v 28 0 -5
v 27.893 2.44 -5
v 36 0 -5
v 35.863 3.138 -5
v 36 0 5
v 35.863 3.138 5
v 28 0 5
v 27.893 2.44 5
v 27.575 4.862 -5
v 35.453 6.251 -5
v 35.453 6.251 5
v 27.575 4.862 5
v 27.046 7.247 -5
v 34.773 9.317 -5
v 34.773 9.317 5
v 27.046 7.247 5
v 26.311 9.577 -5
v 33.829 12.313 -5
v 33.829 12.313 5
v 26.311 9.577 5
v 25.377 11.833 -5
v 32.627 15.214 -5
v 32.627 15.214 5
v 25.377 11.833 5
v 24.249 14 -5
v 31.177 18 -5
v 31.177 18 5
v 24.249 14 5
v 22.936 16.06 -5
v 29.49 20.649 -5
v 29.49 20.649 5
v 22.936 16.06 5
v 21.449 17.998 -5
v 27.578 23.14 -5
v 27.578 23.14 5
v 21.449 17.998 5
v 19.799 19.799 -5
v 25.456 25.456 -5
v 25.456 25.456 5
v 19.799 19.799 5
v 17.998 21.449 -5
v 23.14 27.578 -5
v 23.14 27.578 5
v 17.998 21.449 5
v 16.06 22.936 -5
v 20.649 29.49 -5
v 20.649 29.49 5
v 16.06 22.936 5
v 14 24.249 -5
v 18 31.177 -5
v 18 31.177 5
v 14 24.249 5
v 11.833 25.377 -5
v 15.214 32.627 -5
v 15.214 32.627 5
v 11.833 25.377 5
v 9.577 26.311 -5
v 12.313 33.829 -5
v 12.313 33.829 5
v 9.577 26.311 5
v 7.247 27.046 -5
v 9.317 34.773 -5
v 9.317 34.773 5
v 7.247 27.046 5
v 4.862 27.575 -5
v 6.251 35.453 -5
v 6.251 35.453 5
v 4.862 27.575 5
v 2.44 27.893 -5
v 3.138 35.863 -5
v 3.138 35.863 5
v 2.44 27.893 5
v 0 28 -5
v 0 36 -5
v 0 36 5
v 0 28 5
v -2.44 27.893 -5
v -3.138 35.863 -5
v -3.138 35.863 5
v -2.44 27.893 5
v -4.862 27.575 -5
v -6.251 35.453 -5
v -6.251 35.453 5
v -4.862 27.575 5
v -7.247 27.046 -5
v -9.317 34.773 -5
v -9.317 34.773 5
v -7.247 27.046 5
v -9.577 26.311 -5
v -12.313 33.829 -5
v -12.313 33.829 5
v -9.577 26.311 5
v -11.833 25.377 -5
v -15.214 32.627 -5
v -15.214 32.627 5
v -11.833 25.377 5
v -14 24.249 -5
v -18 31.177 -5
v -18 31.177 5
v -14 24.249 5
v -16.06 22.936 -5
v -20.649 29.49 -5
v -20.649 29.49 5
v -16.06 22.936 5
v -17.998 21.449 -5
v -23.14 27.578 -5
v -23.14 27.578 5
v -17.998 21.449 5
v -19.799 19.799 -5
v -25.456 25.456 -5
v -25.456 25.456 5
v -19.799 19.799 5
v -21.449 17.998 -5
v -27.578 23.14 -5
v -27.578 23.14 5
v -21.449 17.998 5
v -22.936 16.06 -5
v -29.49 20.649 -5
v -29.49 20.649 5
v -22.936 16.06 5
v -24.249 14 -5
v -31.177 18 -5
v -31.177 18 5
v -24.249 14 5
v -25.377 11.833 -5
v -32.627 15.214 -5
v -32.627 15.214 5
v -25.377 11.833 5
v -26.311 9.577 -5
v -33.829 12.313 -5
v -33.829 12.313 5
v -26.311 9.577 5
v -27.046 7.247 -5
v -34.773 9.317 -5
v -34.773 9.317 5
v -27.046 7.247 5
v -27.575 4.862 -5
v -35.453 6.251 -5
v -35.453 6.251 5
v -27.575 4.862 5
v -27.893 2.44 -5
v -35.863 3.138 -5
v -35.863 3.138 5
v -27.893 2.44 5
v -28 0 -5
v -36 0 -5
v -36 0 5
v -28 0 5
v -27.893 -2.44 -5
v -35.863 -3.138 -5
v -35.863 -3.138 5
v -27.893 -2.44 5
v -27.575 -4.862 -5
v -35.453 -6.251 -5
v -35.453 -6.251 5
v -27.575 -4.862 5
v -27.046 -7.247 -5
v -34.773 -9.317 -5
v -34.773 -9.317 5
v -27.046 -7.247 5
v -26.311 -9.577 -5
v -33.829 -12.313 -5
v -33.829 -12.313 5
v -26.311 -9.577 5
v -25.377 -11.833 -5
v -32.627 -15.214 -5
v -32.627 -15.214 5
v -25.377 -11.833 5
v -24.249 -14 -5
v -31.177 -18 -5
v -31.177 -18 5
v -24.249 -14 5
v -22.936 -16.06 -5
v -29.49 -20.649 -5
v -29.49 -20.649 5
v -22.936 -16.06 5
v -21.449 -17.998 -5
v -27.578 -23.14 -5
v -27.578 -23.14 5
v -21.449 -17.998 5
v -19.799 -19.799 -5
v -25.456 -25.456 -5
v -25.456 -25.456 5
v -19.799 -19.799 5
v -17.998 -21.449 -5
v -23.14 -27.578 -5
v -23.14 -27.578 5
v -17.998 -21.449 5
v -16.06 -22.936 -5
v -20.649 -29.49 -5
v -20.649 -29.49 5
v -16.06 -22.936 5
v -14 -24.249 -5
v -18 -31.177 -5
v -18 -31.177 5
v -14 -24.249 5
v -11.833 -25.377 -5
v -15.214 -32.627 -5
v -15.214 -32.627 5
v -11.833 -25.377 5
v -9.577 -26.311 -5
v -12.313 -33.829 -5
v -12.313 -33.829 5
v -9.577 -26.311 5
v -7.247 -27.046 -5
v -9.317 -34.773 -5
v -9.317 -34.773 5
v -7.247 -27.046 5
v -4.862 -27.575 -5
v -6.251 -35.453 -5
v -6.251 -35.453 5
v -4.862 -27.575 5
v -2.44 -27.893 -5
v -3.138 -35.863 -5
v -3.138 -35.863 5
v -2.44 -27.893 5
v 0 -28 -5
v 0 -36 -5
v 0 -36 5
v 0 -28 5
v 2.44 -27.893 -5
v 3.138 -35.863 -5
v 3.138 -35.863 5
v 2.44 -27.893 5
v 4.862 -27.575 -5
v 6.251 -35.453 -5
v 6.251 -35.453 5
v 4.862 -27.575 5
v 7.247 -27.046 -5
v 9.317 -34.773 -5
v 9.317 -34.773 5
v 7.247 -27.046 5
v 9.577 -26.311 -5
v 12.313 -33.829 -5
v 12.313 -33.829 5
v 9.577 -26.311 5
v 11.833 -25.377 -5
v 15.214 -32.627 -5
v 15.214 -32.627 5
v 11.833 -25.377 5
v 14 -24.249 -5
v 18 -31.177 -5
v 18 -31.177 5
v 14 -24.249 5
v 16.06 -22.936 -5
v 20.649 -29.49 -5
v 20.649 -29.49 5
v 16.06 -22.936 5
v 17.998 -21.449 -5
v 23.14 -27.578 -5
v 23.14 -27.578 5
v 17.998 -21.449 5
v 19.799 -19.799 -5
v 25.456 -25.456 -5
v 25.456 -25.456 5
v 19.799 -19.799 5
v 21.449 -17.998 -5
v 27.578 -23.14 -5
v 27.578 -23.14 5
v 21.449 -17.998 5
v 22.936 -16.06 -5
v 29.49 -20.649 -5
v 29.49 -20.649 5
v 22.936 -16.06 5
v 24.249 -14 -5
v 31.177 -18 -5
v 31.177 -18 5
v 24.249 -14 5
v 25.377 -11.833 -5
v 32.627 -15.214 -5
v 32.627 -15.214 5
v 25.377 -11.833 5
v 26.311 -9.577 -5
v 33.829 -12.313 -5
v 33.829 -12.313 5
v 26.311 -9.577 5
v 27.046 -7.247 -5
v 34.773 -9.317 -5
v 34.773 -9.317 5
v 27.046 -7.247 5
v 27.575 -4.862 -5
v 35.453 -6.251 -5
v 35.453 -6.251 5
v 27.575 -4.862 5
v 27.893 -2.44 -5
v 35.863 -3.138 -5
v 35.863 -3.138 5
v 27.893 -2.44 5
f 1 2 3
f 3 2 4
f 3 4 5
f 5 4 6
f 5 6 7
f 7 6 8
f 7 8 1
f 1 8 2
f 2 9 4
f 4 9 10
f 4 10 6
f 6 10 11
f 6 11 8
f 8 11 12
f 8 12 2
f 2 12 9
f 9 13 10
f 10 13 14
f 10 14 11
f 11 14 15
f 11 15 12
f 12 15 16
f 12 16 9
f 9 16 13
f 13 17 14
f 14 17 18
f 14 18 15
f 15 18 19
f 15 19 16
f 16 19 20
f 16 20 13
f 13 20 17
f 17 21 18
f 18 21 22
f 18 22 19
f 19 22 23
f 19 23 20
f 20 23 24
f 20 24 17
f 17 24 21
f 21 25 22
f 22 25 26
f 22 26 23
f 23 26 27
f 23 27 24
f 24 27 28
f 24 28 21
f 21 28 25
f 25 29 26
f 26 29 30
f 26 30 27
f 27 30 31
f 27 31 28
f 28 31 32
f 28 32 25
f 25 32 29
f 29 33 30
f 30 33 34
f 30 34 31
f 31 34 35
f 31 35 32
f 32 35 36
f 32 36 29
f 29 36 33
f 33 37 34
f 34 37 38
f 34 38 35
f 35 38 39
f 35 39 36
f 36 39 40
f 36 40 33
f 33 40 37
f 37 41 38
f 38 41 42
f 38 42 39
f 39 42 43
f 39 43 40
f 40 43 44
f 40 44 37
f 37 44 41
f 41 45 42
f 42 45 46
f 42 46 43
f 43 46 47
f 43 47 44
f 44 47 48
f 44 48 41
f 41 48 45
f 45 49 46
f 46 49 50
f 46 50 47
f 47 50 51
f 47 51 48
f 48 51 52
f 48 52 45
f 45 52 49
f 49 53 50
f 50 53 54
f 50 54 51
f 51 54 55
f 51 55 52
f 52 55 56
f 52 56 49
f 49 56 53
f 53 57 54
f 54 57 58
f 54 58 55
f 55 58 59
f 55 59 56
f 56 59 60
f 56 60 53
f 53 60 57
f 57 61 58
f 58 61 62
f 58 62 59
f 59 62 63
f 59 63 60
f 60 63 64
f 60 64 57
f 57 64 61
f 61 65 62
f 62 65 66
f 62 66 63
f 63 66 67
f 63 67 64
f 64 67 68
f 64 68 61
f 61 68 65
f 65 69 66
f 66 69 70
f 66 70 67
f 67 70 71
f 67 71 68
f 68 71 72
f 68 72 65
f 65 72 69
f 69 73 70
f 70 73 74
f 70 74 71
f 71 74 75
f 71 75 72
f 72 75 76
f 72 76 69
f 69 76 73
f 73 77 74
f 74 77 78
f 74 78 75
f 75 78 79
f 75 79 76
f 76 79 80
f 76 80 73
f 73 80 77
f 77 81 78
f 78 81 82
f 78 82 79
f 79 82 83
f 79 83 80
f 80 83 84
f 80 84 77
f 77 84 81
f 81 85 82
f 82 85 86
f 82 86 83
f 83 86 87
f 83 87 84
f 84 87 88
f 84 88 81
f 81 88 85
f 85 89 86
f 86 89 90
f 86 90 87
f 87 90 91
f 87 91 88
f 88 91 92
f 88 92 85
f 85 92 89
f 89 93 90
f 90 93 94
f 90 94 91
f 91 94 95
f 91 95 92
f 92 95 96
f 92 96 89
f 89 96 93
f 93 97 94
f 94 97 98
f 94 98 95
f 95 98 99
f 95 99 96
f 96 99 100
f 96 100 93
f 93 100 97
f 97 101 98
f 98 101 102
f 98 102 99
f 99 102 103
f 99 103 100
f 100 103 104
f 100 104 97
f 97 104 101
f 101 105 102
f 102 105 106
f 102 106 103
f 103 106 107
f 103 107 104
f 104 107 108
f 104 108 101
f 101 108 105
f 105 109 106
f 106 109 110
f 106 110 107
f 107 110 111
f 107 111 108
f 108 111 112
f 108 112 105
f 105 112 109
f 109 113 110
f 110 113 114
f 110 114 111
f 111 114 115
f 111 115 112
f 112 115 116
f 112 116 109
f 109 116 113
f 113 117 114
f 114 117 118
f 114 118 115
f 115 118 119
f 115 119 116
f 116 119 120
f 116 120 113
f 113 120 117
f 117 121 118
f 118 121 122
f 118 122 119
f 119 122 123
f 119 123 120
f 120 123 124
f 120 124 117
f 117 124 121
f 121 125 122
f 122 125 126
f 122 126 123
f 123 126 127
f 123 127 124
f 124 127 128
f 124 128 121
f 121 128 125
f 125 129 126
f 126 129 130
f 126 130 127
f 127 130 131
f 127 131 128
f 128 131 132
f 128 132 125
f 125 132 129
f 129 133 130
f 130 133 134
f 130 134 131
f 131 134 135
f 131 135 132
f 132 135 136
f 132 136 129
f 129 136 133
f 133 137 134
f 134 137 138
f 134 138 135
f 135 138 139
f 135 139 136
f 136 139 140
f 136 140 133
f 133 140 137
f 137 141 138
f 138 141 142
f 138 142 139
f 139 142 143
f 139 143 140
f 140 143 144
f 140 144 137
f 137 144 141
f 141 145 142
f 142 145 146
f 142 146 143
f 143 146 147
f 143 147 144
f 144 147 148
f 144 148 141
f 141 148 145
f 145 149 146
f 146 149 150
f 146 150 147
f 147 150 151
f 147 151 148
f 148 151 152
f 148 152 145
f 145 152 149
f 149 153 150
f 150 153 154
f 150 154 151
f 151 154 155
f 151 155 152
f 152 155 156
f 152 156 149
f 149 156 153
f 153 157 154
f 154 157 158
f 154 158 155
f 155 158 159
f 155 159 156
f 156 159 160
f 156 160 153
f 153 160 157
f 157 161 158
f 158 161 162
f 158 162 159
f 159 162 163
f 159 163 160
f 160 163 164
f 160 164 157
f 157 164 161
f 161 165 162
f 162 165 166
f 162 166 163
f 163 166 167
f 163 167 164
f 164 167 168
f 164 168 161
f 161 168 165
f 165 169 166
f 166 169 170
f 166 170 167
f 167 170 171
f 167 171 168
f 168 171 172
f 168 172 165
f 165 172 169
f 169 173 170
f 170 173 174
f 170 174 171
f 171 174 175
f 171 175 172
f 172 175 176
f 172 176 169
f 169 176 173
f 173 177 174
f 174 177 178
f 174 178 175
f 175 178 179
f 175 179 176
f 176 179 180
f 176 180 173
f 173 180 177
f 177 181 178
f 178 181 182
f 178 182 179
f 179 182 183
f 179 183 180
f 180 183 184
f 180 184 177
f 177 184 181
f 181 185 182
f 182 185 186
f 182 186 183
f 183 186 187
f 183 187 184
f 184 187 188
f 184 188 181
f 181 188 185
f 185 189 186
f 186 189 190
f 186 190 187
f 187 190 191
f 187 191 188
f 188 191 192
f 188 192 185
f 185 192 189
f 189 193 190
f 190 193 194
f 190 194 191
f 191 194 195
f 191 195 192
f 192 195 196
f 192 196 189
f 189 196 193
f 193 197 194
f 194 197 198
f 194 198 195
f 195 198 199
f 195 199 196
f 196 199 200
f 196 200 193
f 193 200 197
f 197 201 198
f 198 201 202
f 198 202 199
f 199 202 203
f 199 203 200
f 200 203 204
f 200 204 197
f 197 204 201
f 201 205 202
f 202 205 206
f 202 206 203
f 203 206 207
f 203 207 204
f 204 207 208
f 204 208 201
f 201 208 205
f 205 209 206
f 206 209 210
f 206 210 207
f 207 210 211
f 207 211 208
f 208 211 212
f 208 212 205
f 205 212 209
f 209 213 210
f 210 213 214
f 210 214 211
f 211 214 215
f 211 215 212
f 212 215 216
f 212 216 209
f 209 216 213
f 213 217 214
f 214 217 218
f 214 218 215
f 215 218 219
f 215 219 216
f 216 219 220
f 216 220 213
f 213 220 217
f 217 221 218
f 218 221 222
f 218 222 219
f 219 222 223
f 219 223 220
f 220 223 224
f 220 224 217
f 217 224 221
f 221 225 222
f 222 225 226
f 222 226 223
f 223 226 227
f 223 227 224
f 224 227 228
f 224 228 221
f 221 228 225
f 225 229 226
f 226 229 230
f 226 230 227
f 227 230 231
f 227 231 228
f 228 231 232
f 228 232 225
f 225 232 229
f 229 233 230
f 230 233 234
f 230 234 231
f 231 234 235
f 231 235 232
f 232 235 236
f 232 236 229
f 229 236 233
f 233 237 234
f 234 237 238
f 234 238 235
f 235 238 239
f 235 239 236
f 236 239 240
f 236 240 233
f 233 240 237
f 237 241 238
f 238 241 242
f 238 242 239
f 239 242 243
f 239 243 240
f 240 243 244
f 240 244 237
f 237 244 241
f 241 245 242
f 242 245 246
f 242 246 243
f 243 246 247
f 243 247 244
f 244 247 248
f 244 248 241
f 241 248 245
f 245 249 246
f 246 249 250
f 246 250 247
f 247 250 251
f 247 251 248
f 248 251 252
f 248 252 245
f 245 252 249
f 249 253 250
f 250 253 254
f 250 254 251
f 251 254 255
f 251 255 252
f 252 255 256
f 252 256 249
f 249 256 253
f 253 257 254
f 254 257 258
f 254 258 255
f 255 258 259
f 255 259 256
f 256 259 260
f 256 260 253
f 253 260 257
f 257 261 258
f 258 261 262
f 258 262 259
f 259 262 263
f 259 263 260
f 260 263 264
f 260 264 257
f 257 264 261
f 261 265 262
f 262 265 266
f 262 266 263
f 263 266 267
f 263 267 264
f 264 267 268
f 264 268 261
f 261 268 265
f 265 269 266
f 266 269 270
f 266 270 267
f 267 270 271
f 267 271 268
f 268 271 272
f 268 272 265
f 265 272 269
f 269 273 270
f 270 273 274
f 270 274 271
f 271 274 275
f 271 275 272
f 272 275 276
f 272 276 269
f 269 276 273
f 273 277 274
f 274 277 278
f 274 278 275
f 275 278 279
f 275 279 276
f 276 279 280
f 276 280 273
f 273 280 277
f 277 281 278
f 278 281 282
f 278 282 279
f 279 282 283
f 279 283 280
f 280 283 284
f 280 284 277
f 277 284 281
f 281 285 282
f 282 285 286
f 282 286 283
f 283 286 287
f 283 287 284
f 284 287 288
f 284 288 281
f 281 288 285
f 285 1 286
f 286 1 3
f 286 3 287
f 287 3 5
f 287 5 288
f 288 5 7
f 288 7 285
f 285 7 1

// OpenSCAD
polyhedron(points=[[28.0, 0.0, -5.0], [36.0, 0.0, -5.0], [36.0, 0.0, 5.0], [28.0, 0.0, 5.0], [27.893452, 2.440361, -5.0], [35.863009, 3.137607, -5.0], [35.863009, 3.137607, 5.0], [27.893452, 2.440361, 5.0], [27.574617, 4.862149, -5.0], [35.453079, 6.251334, -5.0], [35.453079, 6.251334, 5.0], [27.574617, 4.862149, 5.0], [27.045923, 7.246933, -5.0], [34.77333, 9.317486, -5.0], [34.77333, 9.317486, 5.0], [27.045923, 7.246933, 5.0], [26.311393, 9.576564, -5.0], [33.828934, 12.312725, -5.0], [33.828934, 12.312725, 5.0], [26.311393, 9.576564, 5.0], [25.376618, 11.833311, -5.0], [32.62708, 15.214257, -5.0], [32.62708, 15.214257, 5.0], [25.376618, 11.833311, 5.0], [24.248711, 14.0, -5.0], [31.176915, 18.0, -5.0], [31.176915, 18.0, 5.0], [24.248711, 14.0, 5.0], [22.936257, 16.06014, -5.0], [29.489474, 20.648752, -5.0], [29.489474, 20.648752, 5.0], [22.936257, 16.06014, 5.0], [21.449244, 17.998053, -5.0], [27.5776, 23.140354, -5.0], [27.5776, 23.140354, 5.0], [21.449244, 17.998053, 5.0], [19.79899, 19.79899, -5.0], [25.455844, 25.455844, -5.0], [25.455844, 25.455844, 5.0], [19.79899, 19.79899, 5.0], [17.998053, 21.449244, -5.0], [23.140354, 27.5776, -5.0], [23.140354, 27.5776, 5.0], [17.998053, 21.449244, 5.0], [16.06014, 22.936257, -5.0], [20.648752, 29.489474, -5.0], [20.648752, 29.489474, 5.0], [16.06014, 22.936257, 5.0], [14.0, 24.248711, -5.0], [18.0, 31.176915, -5.0], [18.0, 31.176915, 5.0], [14.0, 24.248711, 5.0], [11.833311, 25.376618, -5.0], [15.214257, 32.62708, -5.0], [15.214257, 32.62708, 5.0], [11.833311, 25.376618, 5.0], [9.576564, 26.311393, -5.0], [12.312725, 33.828934, -5.0], [12.312725, 33.828934, 5.0], [9.576564, 26.311393, 5.0], [7.246933, 27.045923, -5.0], [9.317486, 34.77333, -5.0], [9.317486, 34.77333, 5.0], [7.246933, 27.045923, 5.0], [4.862149, 27.574617, -5.0], [6.251334, 35.453079, -5.0], [6.251334, 35.453079, 5.0], [4.862149, 27.574617, 5.0], [2.440361, 27.893452, -5.0], [3.137607, 35.863009, -5.0], [3.137607, 35.863009, 5.0], [2.440361, 27.893452, 5.0], [0.0, 28.0, -5.0], [0.0, 36.0, -5.0], [0.0, 36.0, 5.0], [0.0, 28.0, 5.0], [-2.440361, 27.893452, -5.0], [-3.137607, 35.863009, -5.0], [-3.137607, 35.863009, 5.0], [-2.440361, 27.893452, 5.0], [-4.862149, 27.574617, -5.0], [-6.251334, 35.453079, -5.0], [-6.251334, 35.453079, 5.0], [-4.862149, 27.574617, 5.0], [-7.246933, 27.045923, -5.0], [-9.317486, 34.77333, -5.0], [-9.317486, 34.77333, 5.0], [-7.246933, 27.045923, 5.0], [-9.576564, 26.311393, -5.0], [-12.312725, 33.828934, -5.0], [-12.312725, 33.828934, 5.0], [-9.576564, 26.311393, 5.0], [-11.833311, 25.376618, -5.0], [-15.214257, 32.62708, -5.0], [-15.214257, 32.62708, 5.0], [-11.833311, 25.376618, 5.0], [-14.0, 24.248711, -5.0], [-18.0, 31.176915, -5.0], [-18.0, 31.176915, 5.0], [-14.0, 24.248711, 5.0], [-16.06014, 22.936257, -5.0], [-20.648752, 29.489474, -5.0], [-20.648752, 29.489474, 5.0], [-16.06014, 22.936257, 5.0], [-17.998053, 21.449244, -5.0], [-23.140354, 27.5776, -5.0], [-23.140354, 27.5776, 5.0], [-17.998053, 21.449244, 5.0], [-19.79899, 19.79899, -5.0], [-25.455844, 25.455844, -5.0], [-25.455844, 25.455844, 5.0], [-19.79899, 19.79899, 5.0], [-21.449244, 17.998053, -5.0], [-27.5776, 23.140354, -5.0], [-27.5776, 23.140354, 5.0], [-21.449244, 17.998053, 5.0], [-22.936257, 16.06014, -5.0], [-29.489474, 20.648752, -5.0], [-29.489474, 20.648752, 5.0], [-22.936257, 16.06014, 5.0], [-24.248711, 14.0, -5.0], [-31.176915, 18.0, -5.0], [-31.176915, 18.0, 5.0], [-24.248711, 14.0, 5.0], [-25.376618, 11.833311, -5.0], [-32.62708, 15.214257, -5.0], [-32.62708, 15.214257, 5.0], [-25.376618, 11.833311, 5.0], [-26.311393, 9.576564, -5.0], [-33.828934, 12.312725, -5.0], [-33.828934, 12.312725, 5.0], [-26.311393, 9.576564, 5.0], [-27.045923, 7.246933, -5.0], [-34.77333, 9.317486, -5.0], [-34.77333, 9.317486, 5.0], [-27.045923, 7.246933, 5.0], [-27.574617, 4.862149, -5.0], [-35.453079, 6.251334, -5.0], [-35.453079, 6.251334, 5.0], [-27.574617, 4.862149, 5.0], [-27.893452, 2.440361, -5.0], [-35.863009, 3.137607, -5.0], [-35.863009, 3.137607, 5.0], [-27.893452, 2.440361, 5.0], [-28.0, 0.0, -5.0], [-36.0, 0.0, -5.0], [-36.0, 0.0, 5.0], [-28.0, 0.0, 5.0], [-27.893452, -2.440361, -5.0], [-35.863009, -3.137607, -5.0], [-35.863009, -3.137607, 5.0], [-27.893452, -2.440361, 5.0], [-27.574617, -4.862149, -5.0], [-35.453079, -6.251334, -5.0], [-35.453079, -6.251334, 5.0], [-27.574617, -4.862149, 5.0], [-27.045923, -7.246933, -5.0], [-34.77333, -9.317486, -5.0], [-34.77333, -9.317486, 5.0], [-27.045923, -7.246933, 5.0], [-26.311393, -9.576564, -5.0], [-33.828934, -12.312725, -5.0], [-33.828934, -12.312725, 5.0], [-26.311393, -9.576564, 5.0], [-25.376618, -11.833311, -5.0], [-32.62708, -15.214257, -5.0], [-32.62708, -15.214257, 5.0], [-25.376618, -11.833311, 5.0], [-24.248711, -14.0, -5.0], [-31.176915, -18.0, -5.0], [-31.176915, -18.0, 5.0], [-24.248711, -14.0, 5.0], [-22.936257, -16.06014, -5.0], [-29.489474, -20.648752, -5.0], [-29.489474, -20.648752, 5.0], [-22.936257, -16.06014, 5.0], [-21.449244, -17.998053, -5.0], [-27.5776, -23.140354, -5.0], [-27.5776, -23.140354, 5.0], [-21.449244, -17.998053, 5.0], [-19.79899, -19.79899, -5.0], [-25.455844, -25.455844, -5.0], [-25.455844, -25.455844, 5.0], [-19.79899, -19.79899, 5.0], [-17.998053, -21.449244, -5.0], [-23.140354, -27.5776, -5.0], [-23.140354, -27.5776, 5.0], [-17.998053, -21.449244, 5.0], [-16.06014, -22.936257, -5.0], [-20.648752, -29.489474, -5.0], [-20.648752, -29.489474, 5.0], [-16.06014, -22.936257, 5.0], [-14.0, -24.248711, -5.0], [-18.0, -31.176915, -5.0], [-18.0, -31.176915, 5.0], [-14.0, -24.248711, 5.0], [-11.833311, -25.376618, -5.0], [-15.214257, -32.62708, -5.0], [-15.214257, -32.62708, 5.0], [-11.833311, -25.376618, 5.0], [-9.576564, -26.311393, -5.0], [-12.312725, -33.828934, -5.0], [-12.312725, -33.828934, 5.0], [-9.576564, -26.311393, 5.0], [-7.246933, -27.045923, -5.0], [-9.317486, -34.77333, -5.0], [-9.317486, -34.77333, 5.0], [-7.246933, -27.045923, 5.0], [-4.862149, -27.574617, -5.0], [-6.251334, -35.453079, -5.0], [-6.251334, -35.453079, 5.0], [-4.862149, -27.574617, 5.0], [-2.440361, -27.893452, -5.0], [-3.137607, -35.863009, -5.0], [-3.137607, -35.863009, 5.0], [-2.440361, -27.893452, 5.0], [-0.0, -28.0, -5.0], [-0.0, -36.0, -5.0], [-0.0, -36.0, 5.0], [-0.0, -28.0, 5.0], [2.440361, -27.893452, -5.0], [3.137607, -35.863009, -5.0], [3.137607, -35.863009, 5.0], [2.440361, -27.893452, 5.0], [4.862149, -27.574617, -5.0], [6.251334, -35.453079, -5.0], [6.251334, -35.453079, 5.0], [4.862149, -27.574617, 5.0], [7.246933, -27.045923, -5.0], [9.317486, -34.77333, -5.0], [9.317486, -34.77333, 5.0], [7.246933, -27.045923, 5.0], [9.576564, -26.311393, -5.0], [12.312725, -33.828934, -5.0], [12.312725, -33.828934, 5.0], [9.576564, -26.311393, 5.0], [11.833311, -25.376618, -5.0], [15.214257, -32.62708, -5.0], [15.214257, -32.62708, 5.0], [11.833311, -25.376618, 5.0], [14.0, -24.248711, -5.0], [18.0, -31.176915, -5.0], [18.0, -31.176915, 5.0], [14.0, -24.248711, 5.0], [16.06014, -22.936257, -5.0], [20.648752, -29.489474, -5.0], [20.648752, -29.489474, 5.0], [16.06014, -22.936257, 5.0], [17.998053, -21.449244, -5.0], [23.140354, -27.5776, -5.0], [23.140354, -27.5776, 5.0], [17.998053, -21.449244, 5.0], [19.79899, -19.79899, -5.0], [25.455844, -25.455844, -5.0], [25.455844, -25.455844, 5.0], [19.79899, -19.79899, 5.0], [21.449244, -17.998053, -5.0], [27.5776, -23.140354, -5.0], [27.5776, -23.140354, 5.0], [21.449244, -17.998053, 5.0], [22.936257, -16.06014, -5.0], [29.489474, -20.648752, -5.0], [29.489474, -20.648752, 5.0], [22.936257, -16.06014, 5.0], [24.248711, -14.0, -5.0], [31.176915, -18.0, -5.0], [31.176915, -18.0, 5.0], [24.248711, -14.0, 5.0], [25.376618, -11.833311, -5.0], [32.62708, -15.214257, -5.0], [32.62708, -15.214257, 5.0], [25.376618, -11.833311, 5.0], [26.311393, -9.576564, -5.0], [33.828934, -12.312725, -5.0], [33.828934, -12.312725, 5.0], [26.311393, -9.576564, 5.0], [27.045923, -7.246933, -5.0], [34.77333, -9.317486, -5.0], [34.77333, -9.317486, 5.0], [27.045923, -7.246933, 5.0], [27.574617, -4.862149, -5.0], [35.453079, -6.251334, -5.0], [35.453079, -6.251334, 5.0], [27.574617, -4.862149, 5.0], [27.893452, -2.440361, -5.0], [35.863009, -3.137607, -5.0], [35.863009, -3.137607, 5.0], [27.893452, -2.440361, 5.0]], faces=[[0, 4, 1], [1, 4, 5], [1, 5, 2], [2, 5, 6], [2, 6, 3], [3, 6, 7], [3, 7, 0], [0, 7, 4], [4, 8, 5], [5, 8, 9], [5, 9, 6], [6, 9, 10], [6, 10, 7], [7, 10, 11], [7, 11, 4], [4, 11, 8], [8, 12, 9], [9, 12, 13], [9, 13, 10], [10, 13, 14], [10, 14, 11], [11, 14, 15], [11, 15, 8], [8, 15, 12], [12, 16, 13], [13, 16, 17], [13, 17, 14], [14, 17, 18], [14, 18, 15], [15, 18, 19], [15, 19, 12], [12, 19, 16], [16, 20, 17], [17, 20, 21], [17, 21, 18], [18, 21, 22], [18, 22, 19], [19, 22, 23], [19, 23, 16], [16, 23, 20], [20, 24, 21], [21, 24, 25], [21, 25, 22], [22, 25, 26], [22, 26, 23], [23, 26, 27], [23, 27, 20], [20, 27, 24], [24, 28, 25], [25, 28, 29], [25, 29, 26], [26, 29, 30], [26, 30, 27], [27, 30, 31], [27, 31, 24], [24, 31, 28], [28, 32, 29], [29, 32, 33], [29, 33, 30], [30, 33, 34], [30, 34, 31], [31, 34, 35], [31, 35, 28], [28, 35, 32], [32, 36, 33], [33, 36, 37], [33, 37, 34], [34, 37, 38], [34, 38, 35], [35, 38, 39], [35, 39, 32], [32, 39, 36], [36, 40, 37], [37, 40, 41], [37, 41, 38], [38, 41, 42], [38, 42, 39], [39, 42, 43], [39, 43, 36], [36, 43, 40], [40, 44, 41], [41, 44, 45], [41, 45, 42], [42, 45, 46], [42, 46, 43], [43, 46, 47], [43, 47, 40], [40, 47, 44], [44, 48, 45], [45, 48, 49], [45, 49, 46], [46, 49, 50], [46, 50, 47], [47, 50, 51], [47, 51, 44], [44, 51, 48], [48, 52, 49], [49, 52, 53], [49, 53, 50], [50, 53, 54], [50, 54, 51], [51, 54, 55], [51, 55, 48], [48, 55, 52], [52, 56, 53], [53, 56, 57], [53, 57, 54], [54, 57, 58], [54, 58, 55], [55, 58, 59], [55, 59, 52], [52, 59, 56], [56, 60, 57], [57, 60, 61], [57, 61, 58], [58, 61, 62], [58, 62, 59], [59, 62, 63], [59, 63, 56], [56, 63, 60], [60, 64, 61], [61, 64, 65], [61, 65, 62], [62, 65, 66], [62, 66, 63], [63, 66, 67], [63, 67, 60], [60, 67, 64], [64, 68, 65], [65, 68, 69], [65, 69, 66], [66, 69, 70], [66, 70, 67], [67, 70, 71], [67, 71, 64], [64, 71, 68], [68, 72, 69], [69, 72, 73], [69, 73, 70], [70, 73, 74], [70, 74, 71], [71, 74, 75], [71, 75, 68], [68, 75, 72], [72, 76, 73], [73, 76, 77], [73, 77, 74], [74, 77, 78], [74, 78, 75], [75, 78, 79], [75, 79, 72], [72, 79, 76], [76, 80, 77], [77, 80, 81], [77, 81, 78], [78, 81, 82], [78, 82, 79], [79, 82, 83], [79, 83, 76], [76, 83, 80], [80, 84, 81], [81, 84, 85], [81, 85, 82], [82, 85, 86], [82, 86, 83], [83, 86, 87], [83, 87, 80], [80, 87, 84], [84, 88, 85], [85, 88, 89], [85, 89, 86], [86, 89, 90], [86, 90, 87], [87, 90, 91], [87, 91, 84], [84, 91, 88], [88, 92, 89], [89, 92, 93], [89, 93, 90], [90, 93, 94], [90, 94, 91], [91, 94, 95], [91, 95, 88], [88, 95, 92], [92, 96, 93], [93, 96, 97], [93, 97, 94], [94, 97, 98], [94, 98, 95], [95, 98, 99], [95, 99, 92], [92, 99, 96], [96, 100, 97], [97, 100, 101], [97, 101, 98], [98, 101, 102], [98, 102, 99], [99, 102, 103], [99, 103, 96], [96, 103, 100], [100, 104, 101], [101, 104, 105], [101, 105, 102], [102, 105, 106], [102, 106, 103], [103, 106, 107], [103, 107, 100], [100, 107, 104], [104, 108, 105], [105, 108, 109], [105, 109, 106], [106, 109, 110], [106, 110, 107], [107, 110, 111], [107, 111, 104], [104, 111, 108], [108, 112, 109], [109, 112, 113], [109, 113, 110], [110, 113, 114], [110, 114, 111], [111, 114, 115], [111, 115, 108], [108, 115, 112], [112, 116, 113], [113, 116, 117], [113, 117, 114], [114, 117, 118], [114, 118, 115], [115, 118, 119], [115, 119, 112], [112, 119, 116], [116, 120, 117], [117, 120, 121], [117, 121, 118], [118, 121, 122], [118, 122, 119], [119, 122, 123], [119, 123, 116], [116, 123, 120], [120, 124, 121], [121, 124, 125], [121, 125, 122], [122, 125, 126], [122, 126, 123], [123, 126, 127], [123, 127, 120], [120, 127, 124], [124, 128, 125], [125, 128, 129], [125, 129, 126], [126, 129, 130], [126, 130, 127], [127, 130, 131], [127, 131, 124], [124, 131, 128], [128, 132, 129], [129, 132, 133], [129, 133, 130], [130, 133, 134], [130, 134, 131], [131, 134, 135], [131, 135, 128], [128, 135, 132], [132, 136, 133], [133, 136, 137], [133, 137, 134], [134, 137, 138], [134, 138, 135], [135, 138, 139], [135, 139, 132], [132, 139, 136], [136, 140, 137], [137, 140, 141], [137, 141, 138], [138, 141, 142], [138, 142, 139], [139, 142, 143], [139, 143, 136], [136, 143, 140], [140, 144, 141], [141, 144, 145], [141, 145, 142], [142, 145, 146], [142, 146, 143], [143, 146, 147], [143, 147, 140], [140, 147, 144], [144, 148, 145], [145, 148, 149], [145, 149, 146], [146, 149, 150], [146, 150, 147], [147, 150, 151], [147, 151, 144], [144, 151, 148], [148, 152, 149], [149, 152, 153], [149, 153, 150], [150, 153, 154], [150, 154, 151], [151, 154, 155], [151, 155, 148], [148, 155, 152], [152, 156, 153], [153, 156, 157], [153, 157, 154], [154, 157, 158], [154, 158, 155], [155, 158, 159], [155, 159, 152], [152, 159, 156], [156, 160, 157], [157, 160, 161], [157, 161, 158], [158, 161, 162], [158, 162, 159], [159, 162, 163], [159, 163, 156], [156, 163, 160], [160, 164, 161], [161, 164, 165], [161, 165, 162], [162, 165, 166], [162, 166, 163], [163, 166, 167], [163, 167, 160], [160, 167, 164], [164, 168, 165], [165, 168, 169], [165, 169, 166], [166, 169, 170], [166, 170, 167], [167, 170, 171], [167, 171, 164], [164, 171, 168], [168, 172, 169], [169, 172, 173], [169, 173, 170], [170, 173, 174], [170, 174, 171], [171, 174, 175], [171, 175, 168], [168, 175, 172], [172, 176, 173], [173, 176, 177], [173, 177, 174], [174, 177, 178], [174, 178, 175], [175, 178, 179], [175, 179, 172], [172, 179, 176], [176, 180, 177], [177, 180, 181], [177, 181, 178], [178, 181, 182], [178, 182, 179], [179, 182, 183], [179, 183, 176], [176, 183, 180], [180, 184, 181], [181, 184, 185], [181, 185, 182], [182, 185, 186], [182, 186, 183], [183, 186, 187], [183, 187, 180], [180, 187, 184], [184, 188, 185], [185, 188, 189], [185, 189, 186], [186, 189, 190], [186, 190, 187], [187, 190, 191], [187, 191, 184], [184, 191, 188], [188, 192, 189], [189, 192, 193], [189, 193, 190], [190, 193, 194], [190, 194, 191], [191, 194, 195], [191, 195, 188], [188, 195, 192], [192, 196, 193], [193, 196, 197], [193, 197, 194], [194, 197, 198], [194, 198, 195], [195, 198, 199], [195, 199, 192], [192, 199, 196], [196, 200, 197], [197, 200, 201], [197, 201, 198], [198, 201, 202], [198, 202, 199], [199, 202, 203], [199, 203, 196], [196, 203, 200], [200, 204, 201], [201, 204, 205], [201, 205, 202], [202, 205, 206], [202, 206, 203], [203, 206, 207], [203, 207, 200], [200, 207, 204], [204, 208, 205], [205, 208, 209], [205, 209, 206], [206, 209, 210], [206, 210, 207], [207, 210, 211], [207, 211, 204], [204, 211, 208], [208, 212, 209], [209, 212, 213], [209, 213, 210], [210, 213, 214], [210, 214, 211], [211, 214, 215], [211, 215, 208], [208, 215, 212], [212, 216, 213], [213, 216, 217], [213, 217, 214], [214, 217, 218], [214, 218, 215], [215, 218, 219], [215, 219, 212], [212, 219, 216], [216, 220, 217], [217, 220, 221], [217, 221, 218], [218, 221, 222], [218, 222, 219], [219, 222, 223], [219, 223, 216], [216, 223, 220], [220, 224, 221], [221, 224, 225], [221, 225, 222], [222, 225, 226], [222, 226, 223], [223, 226, 227], [223, 227, 220], [220, 227, 224], [224, 228, 225], [225, 228, 229], [225, 229, 226], [226, 229, 230], [226, 230, 227], [227, 230, 231], [227, 231, 224], [224, 231, 228], [228, 232, 229], [229, 232, 233], [229, 233, 230], [230, 233, 234], [230, 234, 231], [231, 234, 235], [231, 235, 228], [228, 235, 232], [232, 236, 233], [233, 236, 237], [233, 237, 234], [234, 237, 238], [234, 238, 235], [235, 238, 239], [235, 239, 232], [232, 239, 236], [236, 240, 237], [237, 240, 241], [237, 241, 238], [238, 241, 242], [238, 242, 239], [239, 242, 243], [239, 243, 236], [236, 243, 240], [240, 244, 241], [241, 244, 245], [241, 245, 242], [242, 245, 246], [242, 246, 243], [243, 246, 247], [243, 247, 240], [240, 247, 244], [244, 248, 245], [245, 248, 249], [245, 249, 246], [246, 249, 250], [246, 250, 247], [247, 250, 251], [247, 251, 244], [244, 251, 248], [248, 252, 249], [249, 252, 253], [249, 253, 250], [250, 253, 254], [250, 254, 251], [251, 254, 255], [251, 255, 248], [248, 255, 252], [252, 256, 253], [253, 256, 257], [253, 257, 254], [254, 257, 258], [254, 258, 255], [255, 258, 259], [255, 259, 252], [252, 259, 256], [256, 260, 257], [257, 260, 261], [257, 261, 258], [258, 261, 262], [258, 262, 259], [259, 262, 263], [259, 263, 256], [256, 263, 260], [260, 264, 261], [261, 264, 265], [261, 265, 262], [262, 265, 266], [262, 266, 263], [263, 266, 267], [263, 267, 260], [260, 267, 264], [264, 268, 265], [265, 268, 269], [265, 269, 266], [266, 269, 270], [266, 270, 267], [267, 270, 271], [267, 271, 264], [264, 271, 268], [268, 272, 269], [269, 272, 273], [269, 273, 270], [270, 273, 274], [270, 274, 271], [271, 274, 275], [271, 275, 268], [268, 275, 272], [272, 276, 273], [273, 276, 277], [273, 277, 274], [274, 277, 278], [274, 278, 275], [275, 278, 279], [275, 279, 272], [272, 279, 276], [276, 280, 277], [277, 280, 281], [277, 281, 278], [278, 281, 282], [278, 282, 279], [279, 282, 283], [279, 283, 276], [276, 283, 280], [280, 284, 281], [281, 284, 285], [281, 285, 282], [282, 285, 286], [282, 286, 283], [283, 286, 287], [283, 287, 280], [280, 287, 284], [284, 0, 285], [285, 0, 1], [285, 1, 286], [286, 1, 2], [286, 2, 287], [287, 2, 3], [287, 3, 284], [284, 3, 0]], convexity=30);
